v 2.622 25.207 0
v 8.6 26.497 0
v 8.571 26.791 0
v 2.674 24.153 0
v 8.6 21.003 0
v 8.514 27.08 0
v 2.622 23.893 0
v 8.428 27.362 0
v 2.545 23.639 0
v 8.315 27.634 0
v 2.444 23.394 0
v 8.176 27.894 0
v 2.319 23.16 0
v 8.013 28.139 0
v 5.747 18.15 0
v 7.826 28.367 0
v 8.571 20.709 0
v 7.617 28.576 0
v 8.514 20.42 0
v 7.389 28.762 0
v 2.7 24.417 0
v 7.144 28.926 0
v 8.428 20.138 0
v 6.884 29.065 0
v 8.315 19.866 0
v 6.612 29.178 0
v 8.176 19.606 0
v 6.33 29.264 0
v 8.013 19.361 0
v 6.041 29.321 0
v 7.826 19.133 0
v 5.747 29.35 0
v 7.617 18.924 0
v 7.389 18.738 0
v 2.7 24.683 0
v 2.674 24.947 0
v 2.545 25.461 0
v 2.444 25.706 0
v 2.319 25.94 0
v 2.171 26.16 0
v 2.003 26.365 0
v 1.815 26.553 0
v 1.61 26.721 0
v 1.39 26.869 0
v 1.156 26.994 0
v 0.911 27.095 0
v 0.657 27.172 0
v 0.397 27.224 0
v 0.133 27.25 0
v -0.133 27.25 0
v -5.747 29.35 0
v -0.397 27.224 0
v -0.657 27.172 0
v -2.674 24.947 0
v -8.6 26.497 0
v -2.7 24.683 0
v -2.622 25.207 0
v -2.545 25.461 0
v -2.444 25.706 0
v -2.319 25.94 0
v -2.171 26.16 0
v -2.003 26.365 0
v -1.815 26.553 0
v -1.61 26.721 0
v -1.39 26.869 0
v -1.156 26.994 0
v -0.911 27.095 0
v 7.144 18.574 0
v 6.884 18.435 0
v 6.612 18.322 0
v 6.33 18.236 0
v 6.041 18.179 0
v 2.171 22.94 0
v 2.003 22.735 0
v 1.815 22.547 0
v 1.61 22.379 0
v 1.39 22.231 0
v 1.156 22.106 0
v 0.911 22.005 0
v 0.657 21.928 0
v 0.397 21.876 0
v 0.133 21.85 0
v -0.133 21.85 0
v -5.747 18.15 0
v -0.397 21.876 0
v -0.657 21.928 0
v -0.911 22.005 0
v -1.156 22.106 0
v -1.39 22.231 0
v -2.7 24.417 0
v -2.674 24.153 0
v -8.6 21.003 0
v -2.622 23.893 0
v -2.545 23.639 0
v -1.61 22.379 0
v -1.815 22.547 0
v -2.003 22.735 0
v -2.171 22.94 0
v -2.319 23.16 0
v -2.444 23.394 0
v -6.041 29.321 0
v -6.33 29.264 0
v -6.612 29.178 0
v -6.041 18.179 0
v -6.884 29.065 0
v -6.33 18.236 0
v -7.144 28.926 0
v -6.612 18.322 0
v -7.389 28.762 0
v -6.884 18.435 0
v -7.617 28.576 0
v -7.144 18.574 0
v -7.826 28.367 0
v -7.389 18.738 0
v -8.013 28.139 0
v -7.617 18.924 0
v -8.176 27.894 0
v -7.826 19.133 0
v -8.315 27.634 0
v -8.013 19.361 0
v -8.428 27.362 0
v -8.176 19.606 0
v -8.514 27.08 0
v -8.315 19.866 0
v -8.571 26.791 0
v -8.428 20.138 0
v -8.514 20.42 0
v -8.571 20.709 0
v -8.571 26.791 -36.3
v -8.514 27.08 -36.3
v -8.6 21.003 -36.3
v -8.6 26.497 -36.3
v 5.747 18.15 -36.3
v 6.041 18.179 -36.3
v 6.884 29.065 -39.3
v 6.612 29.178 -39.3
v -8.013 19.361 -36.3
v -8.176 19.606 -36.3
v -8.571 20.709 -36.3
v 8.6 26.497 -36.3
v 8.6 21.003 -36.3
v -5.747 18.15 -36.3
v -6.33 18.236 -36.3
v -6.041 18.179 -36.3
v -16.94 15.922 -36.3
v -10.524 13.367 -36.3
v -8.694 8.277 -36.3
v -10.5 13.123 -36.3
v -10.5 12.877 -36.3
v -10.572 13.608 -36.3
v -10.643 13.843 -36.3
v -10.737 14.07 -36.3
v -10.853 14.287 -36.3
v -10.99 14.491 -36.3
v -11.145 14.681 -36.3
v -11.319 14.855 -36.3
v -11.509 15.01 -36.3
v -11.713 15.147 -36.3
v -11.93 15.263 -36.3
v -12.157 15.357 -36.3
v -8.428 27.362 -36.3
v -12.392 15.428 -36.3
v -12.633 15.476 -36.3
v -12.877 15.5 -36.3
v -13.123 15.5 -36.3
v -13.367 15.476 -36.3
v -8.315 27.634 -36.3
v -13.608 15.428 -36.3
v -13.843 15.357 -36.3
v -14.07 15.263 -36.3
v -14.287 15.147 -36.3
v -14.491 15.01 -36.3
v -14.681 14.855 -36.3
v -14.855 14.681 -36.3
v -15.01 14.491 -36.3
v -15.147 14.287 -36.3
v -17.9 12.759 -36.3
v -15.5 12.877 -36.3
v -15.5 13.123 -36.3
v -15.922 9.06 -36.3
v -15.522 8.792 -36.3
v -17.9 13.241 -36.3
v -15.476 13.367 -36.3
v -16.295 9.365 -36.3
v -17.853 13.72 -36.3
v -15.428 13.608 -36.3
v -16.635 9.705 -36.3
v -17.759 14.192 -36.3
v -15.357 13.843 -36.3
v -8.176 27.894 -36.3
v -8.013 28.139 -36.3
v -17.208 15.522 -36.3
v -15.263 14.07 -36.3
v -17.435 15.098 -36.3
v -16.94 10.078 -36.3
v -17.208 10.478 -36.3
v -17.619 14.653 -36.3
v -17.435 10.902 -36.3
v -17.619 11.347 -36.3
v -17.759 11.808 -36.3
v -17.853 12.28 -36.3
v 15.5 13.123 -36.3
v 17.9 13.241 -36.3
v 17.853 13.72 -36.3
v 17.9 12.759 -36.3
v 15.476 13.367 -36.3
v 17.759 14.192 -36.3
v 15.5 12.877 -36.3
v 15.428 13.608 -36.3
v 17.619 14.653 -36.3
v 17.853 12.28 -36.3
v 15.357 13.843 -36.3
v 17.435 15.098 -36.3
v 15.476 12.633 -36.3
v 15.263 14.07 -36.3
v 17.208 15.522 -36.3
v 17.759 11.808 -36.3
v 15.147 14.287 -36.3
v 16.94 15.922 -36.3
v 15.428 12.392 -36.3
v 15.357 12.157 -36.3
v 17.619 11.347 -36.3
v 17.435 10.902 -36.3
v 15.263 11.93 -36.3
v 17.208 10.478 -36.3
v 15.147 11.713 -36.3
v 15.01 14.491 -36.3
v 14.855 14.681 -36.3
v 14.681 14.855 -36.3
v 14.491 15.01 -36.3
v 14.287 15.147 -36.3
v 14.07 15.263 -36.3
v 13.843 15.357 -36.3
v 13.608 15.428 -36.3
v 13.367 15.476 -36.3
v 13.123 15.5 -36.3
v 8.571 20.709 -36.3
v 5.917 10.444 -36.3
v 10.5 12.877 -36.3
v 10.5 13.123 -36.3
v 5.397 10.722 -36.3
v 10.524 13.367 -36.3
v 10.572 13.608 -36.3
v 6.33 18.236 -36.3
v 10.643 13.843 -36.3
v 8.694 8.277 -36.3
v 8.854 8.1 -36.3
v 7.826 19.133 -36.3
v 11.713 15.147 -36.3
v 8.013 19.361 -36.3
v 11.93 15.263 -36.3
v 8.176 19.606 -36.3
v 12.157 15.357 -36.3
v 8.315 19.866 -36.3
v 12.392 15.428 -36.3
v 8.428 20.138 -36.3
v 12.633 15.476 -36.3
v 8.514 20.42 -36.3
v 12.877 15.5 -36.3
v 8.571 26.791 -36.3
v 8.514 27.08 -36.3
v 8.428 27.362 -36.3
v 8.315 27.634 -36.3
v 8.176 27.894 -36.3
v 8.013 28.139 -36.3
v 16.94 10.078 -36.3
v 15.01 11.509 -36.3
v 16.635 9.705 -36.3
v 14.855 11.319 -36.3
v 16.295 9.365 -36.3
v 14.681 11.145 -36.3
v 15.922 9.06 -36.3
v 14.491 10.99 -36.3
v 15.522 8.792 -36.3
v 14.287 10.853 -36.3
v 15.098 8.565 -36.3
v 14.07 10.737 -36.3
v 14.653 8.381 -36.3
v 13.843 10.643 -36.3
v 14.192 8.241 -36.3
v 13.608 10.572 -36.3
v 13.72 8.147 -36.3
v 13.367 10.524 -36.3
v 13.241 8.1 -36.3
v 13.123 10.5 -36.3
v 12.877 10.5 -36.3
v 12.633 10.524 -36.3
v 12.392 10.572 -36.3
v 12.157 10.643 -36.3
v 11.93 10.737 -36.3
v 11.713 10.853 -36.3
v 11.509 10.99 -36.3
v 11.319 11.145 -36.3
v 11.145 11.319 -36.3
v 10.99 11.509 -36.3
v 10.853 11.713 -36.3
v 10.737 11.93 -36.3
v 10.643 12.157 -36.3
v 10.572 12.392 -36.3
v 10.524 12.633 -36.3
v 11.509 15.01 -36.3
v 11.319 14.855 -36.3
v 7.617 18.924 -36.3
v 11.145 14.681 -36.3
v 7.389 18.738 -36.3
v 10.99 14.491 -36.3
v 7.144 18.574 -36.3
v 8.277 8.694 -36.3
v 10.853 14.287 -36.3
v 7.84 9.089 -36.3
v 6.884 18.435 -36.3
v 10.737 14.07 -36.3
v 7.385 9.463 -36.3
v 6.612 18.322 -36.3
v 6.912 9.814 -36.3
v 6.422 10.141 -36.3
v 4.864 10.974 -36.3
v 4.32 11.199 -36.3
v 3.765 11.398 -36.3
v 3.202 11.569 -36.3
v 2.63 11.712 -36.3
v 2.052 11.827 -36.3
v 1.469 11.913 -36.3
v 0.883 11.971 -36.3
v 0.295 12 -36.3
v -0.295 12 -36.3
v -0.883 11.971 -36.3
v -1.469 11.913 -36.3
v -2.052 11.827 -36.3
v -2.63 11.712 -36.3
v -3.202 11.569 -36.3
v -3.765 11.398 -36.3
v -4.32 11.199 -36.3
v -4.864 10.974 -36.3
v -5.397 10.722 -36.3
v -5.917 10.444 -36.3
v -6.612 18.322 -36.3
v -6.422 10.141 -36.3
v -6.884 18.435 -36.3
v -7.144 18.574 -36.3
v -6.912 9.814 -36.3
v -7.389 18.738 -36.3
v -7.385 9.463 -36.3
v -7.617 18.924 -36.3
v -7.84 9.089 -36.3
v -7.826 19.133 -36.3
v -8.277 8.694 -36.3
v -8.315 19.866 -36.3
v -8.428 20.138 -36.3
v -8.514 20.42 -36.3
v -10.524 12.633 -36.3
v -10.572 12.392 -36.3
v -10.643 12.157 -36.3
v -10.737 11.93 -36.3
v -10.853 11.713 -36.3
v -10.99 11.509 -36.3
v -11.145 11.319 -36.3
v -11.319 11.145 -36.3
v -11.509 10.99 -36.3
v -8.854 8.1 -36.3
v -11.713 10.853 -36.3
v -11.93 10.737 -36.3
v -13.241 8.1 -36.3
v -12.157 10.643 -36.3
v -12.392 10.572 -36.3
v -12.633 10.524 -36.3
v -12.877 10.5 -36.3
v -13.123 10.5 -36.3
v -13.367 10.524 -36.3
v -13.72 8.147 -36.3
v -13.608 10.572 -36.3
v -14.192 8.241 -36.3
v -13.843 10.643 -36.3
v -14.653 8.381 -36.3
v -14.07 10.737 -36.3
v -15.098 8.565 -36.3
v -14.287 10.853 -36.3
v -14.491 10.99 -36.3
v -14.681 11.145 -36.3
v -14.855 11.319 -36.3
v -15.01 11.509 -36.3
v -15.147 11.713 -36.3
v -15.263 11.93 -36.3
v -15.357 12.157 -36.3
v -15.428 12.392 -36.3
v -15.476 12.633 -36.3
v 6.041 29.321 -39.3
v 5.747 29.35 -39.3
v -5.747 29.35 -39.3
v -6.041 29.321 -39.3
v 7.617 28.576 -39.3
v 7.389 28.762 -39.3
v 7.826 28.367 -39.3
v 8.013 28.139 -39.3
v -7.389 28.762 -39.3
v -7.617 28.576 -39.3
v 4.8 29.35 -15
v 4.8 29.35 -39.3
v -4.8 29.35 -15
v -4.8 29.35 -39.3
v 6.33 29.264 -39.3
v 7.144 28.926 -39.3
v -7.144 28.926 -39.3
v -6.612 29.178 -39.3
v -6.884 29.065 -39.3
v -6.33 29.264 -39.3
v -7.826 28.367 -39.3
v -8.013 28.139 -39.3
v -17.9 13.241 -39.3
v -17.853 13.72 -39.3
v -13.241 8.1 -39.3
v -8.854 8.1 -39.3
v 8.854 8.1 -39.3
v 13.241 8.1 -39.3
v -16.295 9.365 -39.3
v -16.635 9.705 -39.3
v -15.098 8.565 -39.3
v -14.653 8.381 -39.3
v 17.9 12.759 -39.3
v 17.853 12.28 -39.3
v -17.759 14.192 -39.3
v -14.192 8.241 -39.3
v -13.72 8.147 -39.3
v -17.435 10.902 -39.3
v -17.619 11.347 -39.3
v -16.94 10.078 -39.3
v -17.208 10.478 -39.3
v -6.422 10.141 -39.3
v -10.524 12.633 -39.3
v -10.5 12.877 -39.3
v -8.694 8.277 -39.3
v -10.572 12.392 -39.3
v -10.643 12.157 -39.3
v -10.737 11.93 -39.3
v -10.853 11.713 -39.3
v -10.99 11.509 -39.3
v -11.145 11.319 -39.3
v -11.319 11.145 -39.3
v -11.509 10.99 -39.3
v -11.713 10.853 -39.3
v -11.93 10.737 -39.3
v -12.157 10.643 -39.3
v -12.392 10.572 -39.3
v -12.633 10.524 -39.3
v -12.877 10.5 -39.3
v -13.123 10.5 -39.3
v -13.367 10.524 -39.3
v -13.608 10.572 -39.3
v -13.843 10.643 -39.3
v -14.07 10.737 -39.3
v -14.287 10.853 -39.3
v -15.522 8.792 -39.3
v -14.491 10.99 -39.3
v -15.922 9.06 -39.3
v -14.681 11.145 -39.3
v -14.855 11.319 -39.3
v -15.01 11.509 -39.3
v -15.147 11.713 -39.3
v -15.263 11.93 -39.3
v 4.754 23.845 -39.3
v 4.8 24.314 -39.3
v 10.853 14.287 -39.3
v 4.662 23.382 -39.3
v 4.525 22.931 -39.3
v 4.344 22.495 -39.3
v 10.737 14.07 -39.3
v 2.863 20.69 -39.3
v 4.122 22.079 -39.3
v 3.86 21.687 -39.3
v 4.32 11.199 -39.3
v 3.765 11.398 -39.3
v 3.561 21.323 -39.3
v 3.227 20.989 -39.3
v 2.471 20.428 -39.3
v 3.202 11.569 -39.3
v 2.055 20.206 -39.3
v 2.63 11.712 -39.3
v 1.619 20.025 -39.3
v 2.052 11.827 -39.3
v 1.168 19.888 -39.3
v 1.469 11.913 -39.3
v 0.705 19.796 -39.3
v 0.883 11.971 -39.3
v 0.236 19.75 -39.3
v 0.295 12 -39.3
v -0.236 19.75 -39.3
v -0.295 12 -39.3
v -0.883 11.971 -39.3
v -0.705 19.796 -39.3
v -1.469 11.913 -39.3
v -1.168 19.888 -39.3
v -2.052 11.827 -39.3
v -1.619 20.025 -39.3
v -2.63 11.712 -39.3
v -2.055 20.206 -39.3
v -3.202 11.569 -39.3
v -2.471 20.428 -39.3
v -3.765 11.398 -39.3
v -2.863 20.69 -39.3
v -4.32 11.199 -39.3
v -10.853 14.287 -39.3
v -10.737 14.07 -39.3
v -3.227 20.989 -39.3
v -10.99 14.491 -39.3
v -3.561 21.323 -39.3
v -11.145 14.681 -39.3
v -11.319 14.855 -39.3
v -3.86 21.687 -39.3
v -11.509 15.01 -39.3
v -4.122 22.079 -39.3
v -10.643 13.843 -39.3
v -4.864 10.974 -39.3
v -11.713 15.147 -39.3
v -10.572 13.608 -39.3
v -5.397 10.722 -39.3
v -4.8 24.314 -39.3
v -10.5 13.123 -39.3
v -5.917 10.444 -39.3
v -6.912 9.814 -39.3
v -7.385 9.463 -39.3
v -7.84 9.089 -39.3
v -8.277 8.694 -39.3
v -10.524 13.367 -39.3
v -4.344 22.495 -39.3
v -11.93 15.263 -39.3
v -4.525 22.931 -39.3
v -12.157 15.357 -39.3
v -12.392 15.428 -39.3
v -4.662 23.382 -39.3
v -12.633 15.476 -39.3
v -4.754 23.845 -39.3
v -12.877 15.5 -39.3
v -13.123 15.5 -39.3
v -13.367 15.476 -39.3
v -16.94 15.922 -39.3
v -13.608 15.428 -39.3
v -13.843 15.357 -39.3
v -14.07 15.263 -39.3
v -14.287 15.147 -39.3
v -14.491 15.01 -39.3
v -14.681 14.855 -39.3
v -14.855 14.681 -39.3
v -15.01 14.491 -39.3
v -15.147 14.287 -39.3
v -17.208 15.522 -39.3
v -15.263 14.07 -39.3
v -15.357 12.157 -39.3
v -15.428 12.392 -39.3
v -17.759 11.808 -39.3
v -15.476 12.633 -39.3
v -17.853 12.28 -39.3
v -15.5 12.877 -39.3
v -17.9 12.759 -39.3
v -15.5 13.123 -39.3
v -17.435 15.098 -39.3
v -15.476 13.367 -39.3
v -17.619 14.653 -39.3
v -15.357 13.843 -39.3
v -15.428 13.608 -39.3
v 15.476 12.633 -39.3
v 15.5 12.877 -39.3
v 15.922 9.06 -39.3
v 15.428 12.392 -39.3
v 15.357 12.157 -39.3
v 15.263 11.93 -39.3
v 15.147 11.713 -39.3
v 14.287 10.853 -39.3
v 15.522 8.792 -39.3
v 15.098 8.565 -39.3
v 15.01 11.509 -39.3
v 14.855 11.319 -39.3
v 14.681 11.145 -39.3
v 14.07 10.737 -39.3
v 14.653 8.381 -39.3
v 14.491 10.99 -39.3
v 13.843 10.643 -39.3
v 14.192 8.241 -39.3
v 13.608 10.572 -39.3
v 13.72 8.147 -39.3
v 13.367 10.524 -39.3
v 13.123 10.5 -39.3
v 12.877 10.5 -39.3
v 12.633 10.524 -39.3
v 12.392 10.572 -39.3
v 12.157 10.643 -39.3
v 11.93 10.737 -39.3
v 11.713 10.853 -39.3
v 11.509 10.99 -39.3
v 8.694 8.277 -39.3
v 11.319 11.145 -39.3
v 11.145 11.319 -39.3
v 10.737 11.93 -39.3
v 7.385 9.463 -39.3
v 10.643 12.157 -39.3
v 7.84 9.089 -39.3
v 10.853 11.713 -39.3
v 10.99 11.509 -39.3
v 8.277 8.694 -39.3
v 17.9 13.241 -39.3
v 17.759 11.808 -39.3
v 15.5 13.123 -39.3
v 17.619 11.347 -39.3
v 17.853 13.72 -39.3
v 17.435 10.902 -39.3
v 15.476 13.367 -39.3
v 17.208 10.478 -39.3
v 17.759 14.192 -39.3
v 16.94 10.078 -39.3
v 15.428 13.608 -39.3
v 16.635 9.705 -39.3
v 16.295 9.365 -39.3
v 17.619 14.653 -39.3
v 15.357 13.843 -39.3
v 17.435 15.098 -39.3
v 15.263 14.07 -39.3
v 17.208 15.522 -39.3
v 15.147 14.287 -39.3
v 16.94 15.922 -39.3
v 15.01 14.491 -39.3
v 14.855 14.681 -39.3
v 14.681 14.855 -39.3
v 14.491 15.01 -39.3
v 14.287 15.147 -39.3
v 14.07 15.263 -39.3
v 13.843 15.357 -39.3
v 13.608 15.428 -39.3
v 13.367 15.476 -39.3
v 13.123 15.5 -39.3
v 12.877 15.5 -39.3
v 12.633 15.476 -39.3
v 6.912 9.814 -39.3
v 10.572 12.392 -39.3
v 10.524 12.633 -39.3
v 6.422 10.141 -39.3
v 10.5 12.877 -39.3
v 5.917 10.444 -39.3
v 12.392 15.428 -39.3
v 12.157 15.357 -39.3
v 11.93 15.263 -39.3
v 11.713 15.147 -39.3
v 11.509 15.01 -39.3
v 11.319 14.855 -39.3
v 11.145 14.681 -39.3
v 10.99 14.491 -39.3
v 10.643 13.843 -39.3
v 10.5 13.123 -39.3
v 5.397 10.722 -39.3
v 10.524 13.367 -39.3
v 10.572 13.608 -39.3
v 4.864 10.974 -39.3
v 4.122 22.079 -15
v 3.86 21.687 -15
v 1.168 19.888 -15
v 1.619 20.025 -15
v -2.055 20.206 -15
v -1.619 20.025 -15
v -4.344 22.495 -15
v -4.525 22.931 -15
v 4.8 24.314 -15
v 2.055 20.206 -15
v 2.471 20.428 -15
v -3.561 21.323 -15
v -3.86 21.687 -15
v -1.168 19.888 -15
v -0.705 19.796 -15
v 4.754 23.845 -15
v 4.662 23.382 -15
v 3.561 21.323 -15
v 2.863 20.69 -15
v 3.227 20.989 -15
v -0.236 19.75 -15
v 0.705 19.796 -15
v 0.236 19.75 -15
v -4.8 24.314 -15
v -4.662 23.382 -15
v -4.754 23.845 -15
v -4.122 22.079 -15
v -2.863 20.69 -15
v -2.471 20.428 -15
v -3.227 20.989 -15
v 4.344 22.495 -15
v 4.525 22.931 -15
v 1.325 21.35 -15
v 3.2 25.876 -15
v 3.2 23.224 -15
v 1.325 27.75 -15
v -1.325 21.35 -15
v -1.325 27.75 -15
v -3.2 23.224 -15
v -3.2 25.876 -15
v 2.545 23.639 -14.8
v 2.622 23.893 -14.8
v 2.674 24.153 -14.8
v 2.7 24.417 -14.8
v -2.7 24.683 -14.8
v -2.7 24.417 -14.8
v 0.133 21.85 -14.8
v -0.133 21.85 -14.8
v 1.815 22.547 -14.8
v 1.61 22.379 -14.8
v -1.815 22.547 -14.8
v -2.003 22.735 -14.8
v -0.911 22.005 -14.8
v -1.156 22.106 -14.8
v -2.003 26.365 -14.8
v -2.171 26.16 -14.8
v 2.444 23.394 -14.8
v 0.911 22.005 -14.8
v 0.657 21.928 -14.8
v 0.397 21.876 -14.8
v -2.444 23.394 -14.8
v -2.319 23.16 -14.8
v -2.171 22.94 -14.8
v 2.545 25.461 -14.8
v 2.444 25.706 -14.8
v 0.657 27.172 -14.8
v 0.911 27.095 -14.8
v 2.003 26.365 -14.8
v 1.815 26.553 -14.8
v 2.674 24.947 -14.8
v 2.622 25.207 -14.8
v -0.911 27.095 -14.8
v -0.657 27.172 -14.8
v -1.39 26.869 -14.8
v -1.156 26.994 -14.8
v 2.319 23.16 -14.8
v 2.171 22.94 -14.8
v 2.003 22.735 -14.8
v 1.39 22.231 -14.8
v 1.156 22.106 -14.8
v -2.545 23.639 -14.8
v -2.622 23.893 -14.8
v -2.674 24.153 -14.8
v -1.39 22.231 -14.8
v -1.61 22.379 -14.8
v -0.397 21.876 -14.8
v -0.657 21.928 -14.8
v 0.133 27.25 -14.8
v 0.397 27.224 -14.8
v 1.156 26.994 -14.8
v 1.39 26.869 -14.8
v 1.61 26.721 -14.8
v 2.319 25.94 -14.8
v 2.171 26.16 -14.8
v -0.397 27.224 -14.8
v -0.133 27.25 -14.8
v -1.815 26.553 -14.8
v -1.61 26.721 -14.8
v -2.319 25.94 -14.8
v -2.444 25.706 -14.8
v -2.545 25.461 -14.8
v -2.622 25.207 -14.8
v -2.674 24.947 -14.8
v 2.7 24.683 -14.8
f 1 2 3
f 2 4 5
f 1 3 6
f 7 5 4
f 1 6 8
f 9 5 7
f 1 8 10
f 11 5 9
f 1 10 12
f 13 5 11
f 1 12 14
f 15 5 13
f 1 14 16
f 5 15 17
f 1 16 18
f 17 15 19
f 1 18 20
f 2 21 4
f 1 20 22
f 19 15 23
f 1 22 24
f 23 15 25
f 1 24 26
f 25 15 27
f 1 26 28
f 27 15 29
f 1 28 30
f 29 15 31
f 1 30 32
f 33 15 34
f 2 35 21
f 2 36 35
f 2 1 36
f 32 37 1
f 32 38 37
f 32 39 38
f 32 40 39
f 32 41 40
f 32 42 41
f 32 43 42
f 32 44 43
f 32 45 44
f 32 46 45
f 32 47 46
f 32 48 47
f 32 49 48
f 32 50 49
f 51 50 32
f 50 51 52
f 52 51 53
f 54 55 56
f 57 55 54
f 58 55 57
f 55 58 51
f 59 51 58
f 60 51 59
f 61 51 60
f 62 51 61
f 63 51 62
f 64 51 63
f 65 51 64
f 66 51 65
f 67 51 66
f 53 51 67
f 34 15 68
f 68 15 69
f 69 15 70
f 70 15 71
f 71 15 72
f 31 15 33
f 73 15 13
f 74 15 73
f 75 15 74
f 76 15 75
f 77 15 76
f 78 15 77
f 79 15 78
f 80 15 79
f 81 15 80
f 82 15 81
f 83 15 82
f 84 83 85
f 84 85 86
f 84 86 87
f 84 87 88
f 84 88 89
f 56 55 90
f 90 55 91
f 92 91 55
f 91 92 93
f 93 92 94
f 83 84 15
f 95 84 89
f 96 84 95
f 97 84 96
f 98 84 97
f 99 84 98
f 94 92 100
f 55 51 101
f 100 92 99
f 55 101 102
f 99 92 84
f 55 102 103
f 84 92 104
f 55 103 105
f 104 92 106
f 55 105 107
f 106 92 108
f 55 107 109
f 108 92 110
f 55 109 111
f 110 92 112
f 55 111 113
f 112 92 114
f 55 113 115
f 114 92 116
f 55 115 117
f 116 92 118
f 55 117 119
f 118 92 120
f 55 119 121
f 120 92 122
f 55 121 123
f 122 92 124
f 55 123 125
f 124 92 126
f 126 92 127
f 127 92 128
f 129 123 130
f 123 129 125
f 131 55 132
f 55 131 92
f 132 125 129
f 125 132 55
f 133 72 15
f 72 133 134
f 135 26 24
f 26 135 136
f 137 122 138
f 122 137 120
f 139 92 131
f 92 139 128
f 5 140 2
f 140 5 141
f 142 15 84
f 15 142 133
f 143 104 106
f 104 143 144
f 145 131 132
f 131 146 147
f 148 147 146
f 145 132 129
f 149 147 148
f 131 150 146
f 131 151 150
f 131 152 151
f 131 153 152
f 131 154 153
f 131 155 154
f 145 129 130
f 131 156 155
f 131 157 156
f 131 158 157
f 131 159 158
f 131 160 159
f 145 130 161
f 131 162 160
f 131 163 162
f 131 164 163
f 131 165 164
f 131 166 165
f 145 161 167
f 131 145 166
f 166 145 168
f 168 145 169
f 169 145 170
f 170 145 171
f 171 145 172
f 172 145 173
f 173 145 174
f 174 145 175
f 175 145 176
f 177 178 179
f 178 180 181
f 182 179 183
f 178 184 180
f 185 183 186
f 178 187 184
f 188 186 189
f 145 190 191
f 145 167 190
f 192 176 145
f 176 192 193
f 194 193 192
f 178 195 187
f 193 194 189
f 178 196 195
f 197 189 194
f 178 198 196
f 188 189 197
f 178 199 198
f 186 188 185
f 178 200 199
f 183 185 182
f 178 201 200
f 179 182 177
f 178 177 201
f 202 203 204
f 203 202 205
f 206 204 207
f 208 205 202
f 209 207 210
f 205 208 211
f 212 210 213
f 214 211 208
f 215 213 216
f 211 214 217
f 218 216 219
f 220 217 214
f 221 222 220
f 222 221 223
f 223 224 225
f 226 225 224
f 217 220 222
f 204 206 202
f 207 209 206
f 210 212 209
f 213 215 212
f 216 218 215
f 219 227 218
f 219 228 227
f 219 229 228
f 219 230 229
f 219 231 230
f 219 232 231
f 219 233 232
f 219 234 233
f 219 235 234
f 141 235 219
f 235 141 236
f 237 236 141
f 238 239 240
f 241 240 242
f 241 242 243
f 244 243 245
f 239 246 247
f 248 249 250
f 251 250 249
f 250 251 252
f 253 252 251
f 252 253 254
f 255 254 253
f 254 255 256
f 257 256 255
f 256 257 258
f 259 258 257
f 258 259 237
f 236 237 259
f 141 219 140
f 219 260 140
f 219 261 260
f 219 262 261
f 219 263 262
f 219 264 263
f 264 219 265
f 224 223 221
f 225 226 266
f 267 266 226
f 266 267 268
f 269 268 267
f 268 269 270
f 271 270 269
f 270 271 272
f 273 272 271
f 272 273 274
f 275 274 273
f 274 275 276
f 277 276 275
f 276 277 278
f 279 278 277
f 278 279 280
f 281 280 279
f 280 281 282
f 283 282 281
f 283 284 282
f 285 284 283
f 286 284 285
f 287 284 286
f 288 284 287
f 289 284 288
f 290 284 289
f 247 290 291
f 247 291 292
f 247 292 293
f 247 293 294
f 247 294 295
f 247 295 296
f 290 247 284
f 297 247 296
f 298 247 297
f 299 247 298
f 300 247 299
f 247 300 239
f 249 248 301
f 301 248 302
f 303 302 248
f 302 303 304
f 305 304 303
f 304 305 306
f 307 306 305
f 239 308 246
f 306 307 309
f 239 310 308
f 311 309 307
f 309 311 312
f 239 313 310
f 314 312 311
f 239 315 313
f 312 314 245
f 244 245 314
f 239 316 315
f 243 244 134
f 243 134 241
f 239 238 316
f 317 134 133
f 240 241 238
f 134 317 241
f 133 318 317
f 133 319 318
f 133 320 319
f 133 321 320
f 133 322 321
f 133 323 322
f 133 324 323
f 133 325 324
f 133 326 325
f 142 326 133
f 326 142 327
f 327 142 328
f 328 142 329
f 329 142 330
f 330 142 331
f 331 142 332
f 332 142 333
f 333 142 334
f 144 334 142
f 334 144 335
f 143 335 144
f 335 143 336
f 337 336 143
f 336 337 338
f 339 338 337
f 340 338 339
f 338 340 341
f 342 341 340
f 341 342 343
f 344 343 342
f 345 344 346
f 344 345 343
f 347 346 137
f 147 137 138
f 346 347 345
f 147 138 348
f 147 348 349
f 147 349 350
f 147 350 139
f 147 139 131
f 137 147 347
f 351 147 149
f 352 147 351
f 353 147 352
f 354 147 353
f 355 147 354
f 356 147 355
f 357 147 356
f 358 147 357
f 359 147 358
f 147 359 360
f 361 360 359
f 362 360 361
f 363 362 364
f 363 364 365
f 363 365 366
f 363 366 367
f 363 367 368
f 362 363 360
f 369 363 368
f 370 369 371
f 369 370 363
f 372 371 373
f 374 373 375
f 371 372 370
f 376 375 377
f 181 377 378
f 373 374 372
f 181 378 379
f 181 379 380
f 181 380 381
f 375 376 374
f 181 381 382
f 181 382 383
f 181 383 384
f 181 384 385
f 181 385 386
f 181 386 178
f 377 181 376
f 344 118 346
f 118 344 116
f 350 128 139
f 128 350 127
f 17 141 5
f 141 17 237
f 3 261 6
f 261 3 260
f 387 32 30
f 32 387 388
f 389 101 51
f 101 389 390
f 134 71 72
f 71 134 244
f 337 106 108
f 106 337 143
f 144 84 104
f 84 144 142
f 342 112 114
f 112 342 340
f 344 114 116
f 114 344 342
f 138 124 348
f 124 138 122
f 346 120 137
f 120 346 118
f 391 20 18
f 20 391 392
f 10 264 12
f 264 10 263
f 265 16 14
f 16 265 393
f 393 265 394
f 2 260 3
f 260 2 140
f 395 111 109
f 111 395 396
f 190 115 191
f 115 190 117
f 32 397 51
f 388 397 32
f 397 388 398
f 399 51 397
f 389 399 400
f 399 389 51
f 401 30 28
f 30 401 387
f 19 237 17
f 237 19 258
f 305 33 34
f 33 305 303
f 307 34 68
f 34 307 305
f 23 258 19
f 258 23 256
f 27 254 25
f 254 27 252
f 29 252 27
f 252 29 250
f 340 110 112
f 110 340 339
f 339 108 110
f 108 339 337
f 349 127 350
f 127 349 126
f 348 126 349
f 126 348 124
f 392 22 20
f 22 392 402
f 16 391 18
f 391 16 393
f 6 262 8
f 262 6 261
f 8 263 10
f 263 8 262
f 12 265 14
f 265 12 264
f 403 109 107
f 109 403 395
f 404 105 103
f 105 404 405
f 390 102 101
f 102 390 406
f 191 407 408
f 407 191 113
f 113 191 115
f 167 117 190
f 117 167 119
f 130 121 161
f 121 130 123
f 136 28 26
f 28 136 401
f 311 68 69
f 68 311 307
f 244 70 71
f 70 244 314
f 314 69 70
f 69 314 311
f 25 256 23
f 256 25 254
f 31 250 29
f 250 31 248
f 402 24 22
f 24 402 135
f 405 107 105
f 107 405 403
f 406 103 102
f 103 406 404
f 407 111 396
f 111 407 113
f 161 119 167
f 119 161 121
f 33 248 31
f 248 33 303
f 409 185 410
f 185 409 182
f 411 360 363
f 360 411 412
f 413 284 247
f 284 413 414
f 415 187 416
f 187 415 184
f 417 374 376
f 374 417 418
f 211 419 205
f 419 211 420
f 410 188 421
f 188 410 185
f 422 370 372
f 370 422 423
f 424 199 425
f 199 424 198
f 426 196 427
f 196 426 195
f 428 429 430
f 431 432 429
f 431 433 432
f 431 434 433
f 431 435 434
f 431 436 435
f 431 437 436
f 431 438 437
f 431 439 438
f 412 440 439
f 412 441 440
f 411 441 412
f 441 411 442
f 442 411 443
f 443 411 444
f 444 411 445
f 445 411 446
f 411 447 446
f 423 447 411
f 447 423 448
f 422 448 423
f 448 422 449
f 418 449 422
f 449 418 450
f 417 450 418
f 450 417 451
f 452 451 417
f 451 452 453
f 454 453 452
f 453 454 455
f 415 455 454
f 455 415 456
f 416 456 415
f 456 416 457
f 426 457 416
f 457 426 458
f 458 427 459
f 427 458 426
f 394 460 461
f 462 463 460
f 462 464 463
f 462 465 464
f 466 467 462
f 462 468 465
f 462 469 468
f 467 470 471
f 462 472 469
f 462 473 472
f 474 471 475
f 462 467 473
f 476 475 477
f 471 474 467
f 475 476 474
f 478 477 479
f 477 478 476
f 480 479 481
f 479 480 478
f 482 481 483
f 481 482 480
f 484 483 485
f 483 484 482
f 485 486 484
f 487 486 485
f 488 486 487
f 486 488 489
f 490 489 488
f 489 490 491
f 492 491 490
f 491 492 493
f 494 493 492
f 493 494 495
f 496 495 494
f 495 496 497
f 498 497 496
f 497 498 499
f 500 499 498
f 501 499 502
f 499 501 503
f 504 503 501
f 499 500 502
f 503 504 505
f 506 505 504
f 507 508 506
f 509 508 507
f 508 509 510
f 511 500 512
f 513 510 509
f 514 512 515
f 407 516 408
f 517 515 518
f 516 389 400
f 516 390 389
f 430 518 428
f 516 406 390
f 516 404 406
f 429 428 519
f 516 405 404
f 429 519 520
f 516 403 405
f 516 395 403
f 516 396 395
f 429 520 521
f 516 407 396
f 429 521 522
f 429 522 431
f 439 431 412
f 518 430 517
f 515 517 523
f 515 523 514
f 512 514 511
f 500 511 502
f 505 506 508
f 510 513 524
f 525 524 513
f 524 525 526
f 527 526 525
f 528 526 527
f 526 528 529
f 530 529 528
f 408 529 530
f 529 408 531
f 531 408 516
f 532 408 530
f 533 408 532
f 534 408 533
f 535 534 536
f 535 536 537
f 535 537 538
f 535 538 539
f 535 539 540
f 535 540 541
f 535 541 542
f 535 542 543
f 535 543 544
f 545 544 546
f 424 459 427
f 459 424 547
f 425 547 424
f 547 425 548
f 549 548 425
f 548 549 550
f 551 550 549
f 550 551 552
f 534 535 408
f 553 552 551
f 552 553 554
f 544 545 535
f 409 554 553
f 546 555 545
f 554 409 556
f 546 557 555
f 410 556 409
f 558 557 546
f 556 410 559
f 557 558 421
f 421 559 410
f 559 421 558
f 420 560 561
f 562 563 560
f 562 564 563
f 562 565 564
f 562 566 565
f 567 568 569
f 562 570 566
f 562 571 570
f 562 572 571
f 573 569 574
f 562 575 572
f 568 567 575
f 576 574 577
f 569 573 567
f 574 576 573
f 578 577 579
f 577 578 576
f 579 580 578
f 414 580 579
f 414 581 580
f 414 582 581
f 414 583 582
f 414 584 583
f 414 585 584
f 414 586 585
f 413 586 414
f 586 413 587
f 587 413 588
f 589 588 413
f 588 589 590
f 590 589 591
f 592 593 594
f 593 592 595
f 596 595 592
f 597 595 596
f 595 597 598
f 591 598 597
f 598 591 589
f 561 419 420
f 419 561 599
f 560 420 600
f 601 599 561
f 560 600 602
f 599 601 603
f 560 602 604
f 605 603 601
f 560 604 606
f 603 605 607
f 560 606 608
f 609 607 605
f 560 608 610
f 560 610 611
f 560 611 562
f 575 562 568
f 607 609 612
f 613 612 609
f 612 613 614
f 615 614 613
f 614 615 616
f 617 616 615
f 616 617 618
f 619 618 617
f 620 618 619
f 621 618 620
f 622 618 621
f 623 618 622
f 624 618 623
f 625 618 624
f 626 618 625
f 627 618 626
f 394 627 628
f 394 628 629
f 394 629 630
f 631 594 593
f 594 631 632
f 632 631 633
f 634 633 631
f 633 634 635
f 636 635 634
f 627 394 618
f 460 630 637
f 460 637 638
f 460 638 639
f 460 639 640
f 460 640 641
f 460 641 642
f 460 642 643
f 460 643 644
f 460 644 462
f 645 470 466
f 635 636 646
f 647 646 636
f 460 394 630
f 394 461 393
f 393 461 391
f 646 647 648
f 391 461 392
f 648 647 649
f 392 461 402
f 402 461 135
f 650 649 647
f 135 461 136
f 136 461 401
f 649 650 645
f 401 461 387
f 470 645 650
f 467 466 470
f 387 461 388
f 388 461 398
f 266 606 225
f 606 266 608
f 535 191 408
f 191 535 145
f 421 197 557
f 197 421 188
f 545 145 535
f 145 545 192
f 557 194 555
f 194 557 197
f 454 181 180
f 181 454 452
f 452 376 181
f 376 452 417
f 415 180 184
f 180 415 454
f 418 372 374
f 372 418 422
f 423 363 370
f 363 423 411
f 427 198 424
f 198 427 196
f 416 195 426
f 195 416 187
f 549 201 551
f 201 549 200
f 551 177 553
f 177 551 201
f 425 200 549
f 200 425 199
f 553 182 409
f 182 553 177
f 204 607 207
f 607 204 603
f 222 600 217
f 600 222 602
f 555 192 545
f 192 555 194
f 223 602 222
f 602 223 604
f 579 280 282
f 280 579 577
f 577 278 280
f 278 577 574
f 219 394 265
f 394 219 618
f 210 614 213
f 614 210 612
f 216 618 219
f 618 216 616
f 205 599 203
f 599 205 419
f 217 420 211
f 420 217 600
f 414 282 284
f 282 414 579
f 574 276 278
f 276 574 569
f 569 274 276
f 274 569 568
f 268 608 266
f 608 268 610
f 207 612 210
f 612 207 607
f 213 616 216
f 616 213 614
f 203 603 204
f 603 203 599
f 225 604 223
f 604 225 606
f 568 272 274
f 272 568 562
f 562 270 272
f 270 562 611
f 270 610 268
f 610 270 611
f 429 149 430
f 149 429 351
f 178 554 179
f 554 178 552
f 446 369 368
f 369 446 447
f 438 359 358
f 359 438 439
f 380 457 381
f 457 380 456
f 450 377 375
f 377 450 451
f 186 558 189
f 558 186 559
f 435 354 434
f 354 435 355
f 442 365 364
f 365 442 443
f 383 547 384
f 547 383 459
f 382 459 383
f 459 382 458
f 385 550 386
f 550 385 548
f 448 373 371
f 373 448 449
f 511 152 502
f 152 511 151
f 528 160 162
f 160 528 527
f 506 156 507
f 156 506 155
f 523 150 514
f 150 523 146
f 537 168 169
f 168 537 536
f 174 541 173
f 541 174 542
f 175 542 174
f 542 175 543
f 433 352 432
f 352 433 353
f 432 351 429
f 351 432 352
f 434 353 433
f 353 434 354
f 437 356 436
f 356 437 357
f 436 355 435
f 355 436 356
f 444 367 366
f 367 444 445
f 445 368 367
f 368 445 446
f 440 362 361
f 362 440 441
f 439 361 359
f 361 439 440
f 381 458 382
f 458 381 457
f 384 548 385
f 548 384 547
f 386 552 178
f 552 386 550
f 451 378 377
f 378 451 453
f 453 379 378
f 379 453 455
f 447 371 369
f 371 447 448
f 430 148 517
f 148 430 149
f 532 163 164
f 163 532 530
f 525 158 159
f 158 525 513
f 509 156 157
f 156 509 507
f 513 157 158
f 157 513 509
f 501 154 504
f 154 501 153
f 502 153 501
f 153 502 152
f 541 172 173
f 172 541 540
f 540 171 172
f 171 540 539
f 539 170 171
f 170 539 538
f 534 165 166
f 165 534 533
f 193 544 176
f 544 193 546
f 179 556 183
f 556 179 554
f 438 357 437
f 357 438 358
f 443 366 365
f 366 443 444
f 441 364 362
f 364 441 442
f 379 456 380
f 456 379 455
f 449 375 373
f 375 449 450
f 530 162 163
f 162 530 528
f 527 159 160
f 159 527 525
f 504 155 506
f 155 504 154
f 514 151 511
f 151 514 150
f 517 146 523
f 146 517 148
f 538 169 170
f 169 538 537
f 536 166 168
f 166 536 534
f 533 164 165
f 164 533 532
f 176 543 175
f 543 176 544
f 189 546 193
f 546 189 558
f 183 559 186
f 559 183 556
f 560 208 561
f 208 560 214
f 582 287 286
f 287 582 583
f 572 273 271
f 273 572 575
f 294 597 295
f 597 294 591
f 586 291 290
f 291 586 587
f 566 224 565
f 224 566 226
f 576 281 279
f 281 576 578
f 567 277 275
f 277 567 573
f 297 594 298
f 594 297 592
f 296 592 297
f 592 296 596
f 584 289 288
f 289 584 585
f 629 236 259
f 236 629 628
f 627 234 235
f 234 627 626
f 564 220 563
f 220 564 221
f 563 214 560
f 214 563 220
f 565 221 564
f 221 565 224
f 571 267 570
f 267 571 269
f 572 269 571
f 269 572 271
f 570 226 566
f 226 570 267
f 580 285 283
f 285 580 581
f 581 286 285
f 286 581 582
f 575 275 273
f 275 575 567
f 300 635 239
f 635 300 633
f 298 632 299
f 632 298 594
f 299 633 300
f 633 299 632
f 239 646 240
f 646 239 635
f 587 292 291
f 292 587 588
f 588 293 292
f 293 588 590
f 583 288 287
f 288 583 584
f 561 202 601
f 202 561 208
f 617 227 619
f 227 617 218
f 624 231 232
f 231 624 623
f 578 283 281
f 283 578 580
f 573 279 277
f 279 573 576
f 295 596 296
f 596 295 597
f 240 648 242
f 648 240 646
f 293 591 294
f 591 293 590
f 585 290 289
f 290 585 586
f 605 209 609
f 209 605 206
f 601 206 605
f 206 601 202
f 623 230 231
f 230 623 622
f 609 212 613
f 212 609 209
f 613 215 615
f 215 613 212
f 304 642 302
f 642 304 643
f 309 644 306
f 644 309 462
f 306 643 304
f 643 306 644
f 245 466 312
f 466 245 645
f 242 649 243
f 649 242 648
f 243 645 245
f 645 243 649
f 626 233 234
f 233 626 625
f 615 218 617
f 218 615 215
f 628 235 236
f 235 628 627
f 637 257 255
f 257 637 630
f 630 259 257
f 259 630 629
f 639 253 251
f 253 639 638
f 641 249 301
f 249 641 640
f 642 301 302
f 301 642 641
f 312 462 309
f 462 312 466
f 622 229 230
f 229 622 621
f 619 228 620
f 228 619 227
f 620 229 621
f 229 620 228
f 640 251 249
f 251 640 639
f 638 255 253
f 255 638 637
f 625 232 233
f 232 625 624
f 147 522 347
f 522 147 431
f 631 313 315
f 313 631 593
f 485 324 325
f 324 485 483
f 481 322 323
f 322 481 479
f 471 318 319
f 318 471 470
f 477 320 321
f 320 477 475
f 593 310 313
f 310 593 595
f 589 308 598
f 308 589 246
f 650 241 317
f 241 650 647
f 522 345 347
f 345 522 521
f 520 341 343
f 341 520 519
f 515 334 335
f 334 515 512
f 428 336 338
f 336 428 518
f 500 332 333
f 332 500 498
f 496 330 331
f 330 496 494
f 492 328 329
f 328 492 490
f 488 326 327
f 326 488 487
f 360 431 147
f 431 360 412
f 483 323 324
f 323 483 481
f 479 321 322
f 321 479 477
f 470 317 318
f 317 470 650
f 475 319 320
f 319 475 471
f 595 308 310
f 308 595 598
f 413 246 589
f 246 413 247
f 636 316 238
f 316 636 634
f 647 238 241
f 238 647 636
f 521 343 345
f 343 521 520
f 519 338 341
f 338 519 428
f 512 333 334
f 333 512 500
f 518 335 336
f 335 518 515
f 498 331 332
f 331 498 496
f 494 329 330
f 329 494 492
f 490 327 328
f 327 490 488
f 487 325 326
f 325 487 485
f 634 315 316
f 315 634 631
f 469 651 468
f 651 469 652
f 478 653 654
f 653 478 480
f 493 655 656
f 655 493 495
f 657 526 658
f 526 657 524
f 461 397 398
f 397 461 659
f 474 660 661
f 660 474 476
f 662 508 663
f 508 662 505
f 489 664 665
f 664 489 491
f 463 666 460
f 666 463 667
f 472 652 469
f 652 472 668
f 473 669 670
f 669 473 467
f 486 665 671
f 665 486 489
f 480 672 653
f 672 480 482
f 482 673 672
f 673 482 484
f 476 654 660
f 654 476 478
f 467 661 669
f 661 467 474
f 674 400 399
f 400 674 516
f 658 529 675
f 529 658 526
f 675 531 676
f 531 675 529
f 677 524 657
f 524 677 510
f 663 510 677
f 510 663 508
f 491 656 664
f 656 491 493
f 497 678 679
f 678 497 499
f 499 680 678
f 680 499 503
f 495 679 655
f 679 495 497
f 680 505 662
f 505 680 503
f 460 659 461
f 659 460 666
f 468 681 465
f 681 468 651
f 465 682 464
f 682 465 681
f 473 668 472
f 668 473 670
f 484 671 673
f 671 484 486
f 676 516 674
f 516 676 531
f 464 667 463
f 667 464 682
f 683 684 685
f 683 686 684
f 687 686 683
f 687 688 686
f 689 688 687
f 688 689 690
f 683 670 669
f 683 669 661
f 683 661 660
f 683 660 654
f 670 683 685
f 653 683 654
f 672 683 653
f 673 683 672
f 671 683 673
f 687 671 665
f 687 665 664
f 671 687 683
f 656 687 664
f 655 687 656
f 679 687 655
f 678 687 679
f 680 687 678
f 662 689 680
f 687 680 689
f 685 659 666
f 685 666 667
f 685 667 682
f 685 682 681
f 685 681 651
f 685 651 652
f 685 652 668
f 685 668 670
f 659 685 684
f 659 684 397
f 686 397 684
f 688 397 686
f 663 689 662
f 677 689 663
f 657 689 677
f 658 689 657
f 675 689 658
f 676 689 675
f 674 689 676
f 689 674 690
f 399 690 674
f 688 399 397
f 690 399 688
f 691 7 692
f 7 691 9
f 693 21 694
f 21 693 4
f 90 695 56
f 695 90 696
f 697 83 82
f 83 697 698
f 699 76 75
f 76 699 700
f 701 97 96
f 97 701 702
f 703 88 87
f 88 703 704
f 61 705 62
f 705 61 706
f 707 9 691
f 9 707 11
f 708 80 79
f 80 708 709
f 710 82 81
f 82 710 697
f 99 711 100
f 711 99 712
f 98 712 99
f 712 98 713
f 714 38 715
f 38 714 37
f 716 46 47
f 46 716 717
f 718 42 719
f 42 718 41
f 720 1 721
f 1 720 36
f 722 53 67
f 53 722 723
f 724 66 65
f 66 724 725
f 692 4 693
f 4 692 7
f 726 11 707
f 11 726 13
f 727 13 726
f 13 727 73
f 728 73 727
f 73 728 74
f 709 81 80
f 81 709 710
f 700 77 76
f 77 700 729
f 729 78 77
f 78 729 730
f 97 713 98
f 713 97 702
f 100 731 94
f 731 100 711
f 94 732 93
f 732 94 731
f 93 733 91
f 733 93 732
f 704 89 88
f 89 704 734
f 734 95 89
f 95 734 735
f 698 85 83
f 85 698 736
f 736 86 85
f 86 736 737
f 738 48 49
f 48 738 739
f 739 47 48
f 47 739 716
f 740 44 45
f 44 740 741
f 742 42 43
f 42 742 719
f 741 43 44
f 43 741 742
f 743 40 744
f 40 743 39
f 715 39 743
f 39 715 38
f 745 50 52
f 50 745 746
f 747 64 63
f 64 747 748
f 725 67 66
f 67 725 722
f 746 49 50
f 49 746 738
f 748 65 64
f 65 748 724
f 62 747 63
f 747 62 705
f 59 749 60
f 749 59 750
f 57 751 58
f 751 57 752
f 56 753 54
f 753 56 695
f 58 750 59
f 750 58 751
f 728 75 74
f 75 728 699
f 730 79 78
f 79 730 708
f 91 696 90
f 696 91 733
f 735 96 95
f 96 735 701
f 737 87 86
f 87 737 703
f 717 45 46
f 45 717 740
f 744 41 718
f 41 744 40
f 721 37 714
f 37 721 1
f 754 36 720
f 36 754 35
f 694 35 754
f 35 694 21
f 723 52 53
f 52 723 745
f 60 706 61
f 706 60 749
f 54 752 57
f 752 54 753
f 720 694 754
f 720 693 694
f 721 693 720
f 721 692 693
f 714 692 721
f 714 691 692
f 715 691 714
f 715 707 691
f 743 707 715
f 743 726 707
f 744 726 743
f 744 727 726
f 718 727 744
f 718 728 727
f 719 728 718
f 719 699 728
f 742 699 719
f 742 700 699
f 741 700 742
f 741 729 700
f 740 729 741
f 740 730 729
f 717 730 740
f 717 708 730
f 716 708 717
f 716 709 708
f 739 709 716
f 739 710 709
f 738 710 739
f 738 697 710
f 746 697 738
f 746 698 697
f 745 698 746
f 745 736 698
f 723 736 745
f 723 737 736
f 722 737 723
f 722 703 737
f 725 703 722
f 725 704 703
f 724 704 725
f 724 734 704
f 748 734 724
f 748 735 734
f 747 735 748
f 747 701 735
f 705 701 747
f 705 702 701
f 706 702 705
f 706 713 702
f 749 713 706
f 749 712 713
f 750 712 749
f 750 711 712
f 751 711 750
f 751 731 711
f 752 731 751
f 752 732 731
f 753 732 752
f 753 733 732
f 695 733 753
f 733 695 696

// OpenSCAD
// file: ../lib/util.scad
resolution = 64;

pi = 3.141592;

left = -1;
right = 1;
top = 1;
bottom = -1;
rear = 1;
front = -1;

function accurate_diam(diam,sides) = 1 / cos(180/sides) / 2 * diam;

module hole(diam,len,sides=8) {
  rotate([0,0,180/sides]) {
    cylinder(r=accurate_diam(diam,sides),h=len,center=true,$fn=sides);
  }
}

module accurate_circle(diam,sides=8) {
  rotate([0,0,180/sides]) {
    circle(r=accurate_diam(diam,sides),$fn=sides);
  }
}

module debug_axes() {
  color("red") translate([50,0,0]) cube([100,.2,.2],center=true);
  color("green") translate([0,50,0]) cube([.2,100,.2],center=true);
  color("blue") translate([0,0,50]) cube([.2,.2,100],center=true);
}

module ring(id,thickness,height,fn=16) {
  od = id + thickness;
  linear_extrude(height=height,center=true) {
    difference() {
      accurate_circle(od,fn);
      accurate_circle(id,fn);
    }
  }
}

module rounded_square(width,depth,diam,fn=resolution) {
  pos_x = width/2-diam/2;
  pos_y = depth/2-diam/2;

  hull() {
    for(x=[left,right]) {
      for(y=[front,rear]) {
        translate([x*pos_x,y*pos_y,0]) {
          accurate_circle(diam,fn);
        }
      }
    }
  }
}

module rounded_cube(width,depth,height,diam,fn=resolution) {
  linear_extrude(height=height,center=true,convexity=3) {
    rounded_square(width,depth,diam,fn);
  }
}

module round_corner_filler(diam,length) {
  linear_extrude(height=length,center=true,convexity=3) {
    round_corner_filler_profile(diam);
  }
}

module round_corner_filler_profile(diam,res=resolution) {
  difference() {
    translate([diam/4,diam/4,0]) {
      square([diam/2,diam/2],center=true);
    }
    translate([diam/2,diam/2,0]) {
      accurate_circle(diam,res);
    }
  }
}

module space_along_length(length,min_hole_spacing=4*inch,from_end=1*inch) {
  avail_length = length - (from_end*2);
  num_spaces   = floor(avail_length / min_hole_spacing);
  extra_space  = (avail_length - (num_spaces*min_hole_spacing)) / num_spaces;
  spacing      = min_hole_spacing + extra_space;

  // echo(length, num_spaces, spacing);

  translate([0,-length/2+from_end,0]) {
    for(y=[0:num_spaces]) {
      translate([0,y*spacing,0]) {
        children();
      }
    }
  }
}

module letter_spike(thin_width,thick_width,thickness) {
  hull() {
    cylinder(r=thin_width,h=thickness*2,center=true,$fn=16);
    cylinder(r=thick_width,h=0.01,center=true,$fn=16);
  }
}

module letter_L(width=10,height=20,thickness=0.5,thick_width=2,thin_width=0.3) {
  lines = [
    [
      [-width/2,height/2,0],
      [-width/2,-height/2,0],
    ],
    [
      [-width/2,-height/2,0],
      [width/2,-height/2,0],
    ],
  ];

  for(pair=lines) {
    hull() {
      for(vect=pair) {
        translate(vect) {
          letter_spike(thin_width,thick_width,thickness);
        }
      }
    }
  }
}

module letter_R(width=10,height=20,thickness=0.5,thick_width=2,thin_width=0.3) {
  lines = [
    [
      [-width/2,height/2,0],
      [-width/2,-height/2,0],
    ],
    [
      [-width/2,height/2,0],
      [width/2,height/3,0],
    ],
    [
      [width/2,height/3,0],
      [-width/4,0,0],
    ],
    [
      [-width/2,0,0],
      [-width/4,0,0],
    ],
    [
      [-width/4,0,0],
      [width/2,-height/2,0],
    ],
  ];

  for(pair=lines) {
    hull() {
      for(vect=pair) {
        translate(vect) {
          letter_spike(thin_width,thick_width,thickness);
        }
      }
    }
  }
}

module zip_tie_cavity(inner_diam_input,zip_tie_thickness,zip_tie_width,fn=resolution) {
  inner_diam = inner_diam_input -0.05;
  overall_width = inner_diam+zip_tie_thickness*2;

  module profile() {
    for(x=[left,right]) {
      translate([x*(inner_diam/2+zip_tie_thickness/2),overall_width,0]) {
        square([zip_tie_thickness,overall_width*2],center=true);
      }
    }

    intersection() {
      translate([0,-overall_width,0]) {
        square([overall_width*2,overall_width*2],center=true);
      }
      difference() {
        accurate_circle(inner_diam+zip_tie_thickness*2,fn);
        accurate_circle(inner_diam,fn);
      }
    }
  }

  linear_extrude(height=zip_tie_width,convexity=3,center=true) {
    profile();
  }
}

module printed_extrusion_carriage_profile(body_width,body_height) {
  spring_thickness = extrude_width*4;
  spring_gap_width = 1;
  preload = -0.2; // negative makes more slack both for print and UHMWPE tape
  wall_thickness = extrude_width*4;

  cavity_width = body_width - wall_thickness*4;
  cavity_height = body_height - wall_thickness*4;

  module spring_profile() {
    contact_width = 8;

    translate([0,-preload+spring_thickness/2]) {
      translate([left*(y_rail_extrusion_width/2-contact_width/2),0,0]) {
        rounded_square(contact_width,spring_thickness,spring_thickness);
      }
      hull() {
        translate([left*(y_rail_extrusion_width/2-contact_width+spring_thickness/2),0,0]) {
          accurate_circle(spring_thickness,resolution);
        }
        translate([right*(y_rail_extrusion_width/2-spring_thickness),spring_gap_width/2,0]) {
          accurate_circle(spring_thickness,resolution);
        }
      }
      translate([right*(y_rail_extrusion_width/2-spring_thickness),2-spring_thickness/2+spring_gap_width/2,0]) {
        rounded_square(spring_thickness,4,spring_thickness);
      }
    }
  }

  for(z=[top,bottom]) {
    mirror([0,1-z,0]) {
      translate([0,y_rail_extrusion_height/2]) {
        spring_profile();
      }

      for(x=[left,right]) {
        mirror([1-x,0,0]) {
          translate([y_rail_extrusion_width/2,y_rail_extrusion_height/4,0]) {
            rotate([0,0,-90]) {
              spring_profile();
            }
          }
        }
      }
    }
  }

  difference() {
    gap_width = cavity_height - y_rail_extrusion_height;
    rounded_square(body_width,body_height,wall_thickness*8);
    rounded_square(cavity_width,cavity_height,gap_width);
  }
}

/*
translate([-10,0,0]) {
  letter_L();
}

translate([10,0,0]) {
  letter_R();
}
*/
// file: ../config.scad
include <./lib/util.scad>;
include <./lib/vitamins.scad>;

tolerance = 0.2;
extrude_width = 0.4;
wall_thickness = extrude_width*3;

extrusion_mount_screw_diam = m5_diam;
extrusion_mount_screw_head_diam = m5_nut_diam;

leadscrew_diam = 5;
leadscrew_hole_diam = 6.5;
leadscrew_nut_shaft_diam = 8.5;
leadscrew_nut_shaft_length = 6.5;
leadscrew_nut_hole_dist = 6.611;
leadscrew_nut_flange_diam = 20;
leadscrew_nut_flange_thickness = 3.25;
leadscrew_nut_mounting_hole_dist = 6.35;
leadscrew_nut_mounting_hole_diam = 2.8; // from walter's -- threading m3 into plastic?

//leadscrew_pos_y = -leadscrew_nut_flange_diam/2-1;
//leadscrew_pos_y = -11; // we could move it closer with a printed bracket, but it would interfere with the X idler without redefining the X idler Y pos
leadscrew_pos_y = -13; // what walter is using

m3_socket_head_diam = 5.6;
m3_socket_head_height = 3;

rounded_diam = 4;

z_nut_base_height = mgn12c_length/2 - mgn12c_hole_spacing_length/2 + m3_socket_head_diam/2 + extrude_width*2;

gt2_toothed_idler_id_hole = gt2_toothed_idler_id-0.15; // thread the idler pulley shaft into plastic

leadscrew_nut_mounting_hole_depth = z_nut_base_height - leadscrew_nut_flange_thickness - extrude_width*2;

leadscrew_nut_shoulder_below_carriage_holes = 4.5;

idler_bevel_height = 1;
idler_shoulder_above_rail = 9.2/2+4.8;

depth = abs(leadscrew_pos_y)+7; // copying from walter
z_nut_mount_height = idler_shoulder_above_rail - idler_bevel_height + mgn12c_hole_spacing_length/2 + mgn12c_length/2;

echo("z_nut_mount_height: ", z_nut_mount_height);
z_nut_body_pos_z = mgn12c_hole_spacing_length/2+idler_shoulder_above_rail-idler_bevel_height-z_nut_mount_height/2;

// x_idler_on_z_pos_x = -11; // walter
x_idler_on_z_pos_x = left*(leadscrew_diam/2+gt2_toothed_idler_flange_od/2+1);
x_idler_on_z_pos_y = leadscrew_pos_y-3;
x_idler_on_z_pos_z = z_nut_body_pos_z + z_nut_mount_height/2 + idler_bevel_height;

meat_on_far_side_of_idler = gt2_toothed_idler_id_hole/2 + wall_thickness*3;
idler_shaft_body_width = meat_on_far_side_of_idler + abs(x_idler_on_z_pos_x) - leadscrew_hole_diam/2 - 1.75; // fatter to be same as walter's
z_nut_mount_width = meat_on_far_side_of_idler + abs(x_idler_on_z_pos_x) + mgn12c_hole_spacing_width/2 + m3_socket_head_diam/2 + extrude_width*2;
z_nut_body_pos_x = x_idler_on_z_pos_x-meat_on_far_side_of_idler+z_nut_mount_width/2;

mgn9_rail_width_allowance = mgn9_rail_width+tolerance;
mgn9_rail_height_allowance = mgn9_rail_height+tolerance;
// file: ../z-motor-mount.scad
include <./config.scad>;
include <./lib/util.scad>;

gap_beneath_z_motor = 1;
motor_opening_side = nema14_side + 1;
motor_opening_height = nema14_len + gap_beneath_z_motor;
plate_thickness = 3;
motor_screw_hole_diam = nema14_screw_diam+2; // extra slop to adjust Z motor
motor_screw_mount_width = motor_screw_hole_diam+2*(extrude_width*6);
mount_width = nema14_hole_spacing+motor_screw_mount_width;
dist_to_extrusion = abs(leadscrew_pos_y) + mgn12c_surface_above_surface;
extrusion_width = 20;

module motor_negative() {
  translate([0,0,motor_opening_height/2]) {
    // cube([motor_opening_side,motor_opening_side,motor_opening_height],center=true);
  }

  translate([0,0,motor_opening_height]) {
    for(x=[left,right]) {
      for(y=[front,rear]) {
        translate([x*nema14_hole_spacing/2,y*nema14_hole_spacing/2,0]) {
          hole(motor_screw_hole_diam,40,resolution);
        }
      }
    } 

    hole(nema14_shoulder_diam+2,40,resolution*2);
  }
}

module z_motor_mount_rear() {
  extrusion_side_thickness = dist_to_extrusion - motor_opening_side/2;
  extrusion_mount_thickness = extrude_width*8;

  module body() {
    // between motor and extrusion
    translate([extrusion_mount_thickness/2,motor_opening_side/2+extrusion_side_thickness/2,motor_opening_height/2]) {
      rounded_cube(extrusion_width+extrusion_mount_thickness,extrusion_side_thickness,motor_opening_height,extrusion_mount_thickness);
    }

    // mount to screw to extrusion
    extrusion_mount_height = motor_opening_height + plate_thickness;
    overall_depth = extrusion_side_thickness+extrusion_width;
    translate([extrusion_width/2+extrusion_mount_thickness/2,motor_opening_side/2+overall_depth/2,extrusion_mount_height/2]) {
      rounded_cube(extrusion_mount_thickness,overall_depth,extrusion_mount_height,extrusion_mount_thickness);
    }

    // motor mount plate
    translate([0,0,motor_opening_height+plate_thickness/2]) {
      hull() {
        translate([extrusion_mount_thickness/2,motor_opening_side/2+extrusion_side_thickness/2,0]) {
          rounded_cube(extrusion_width+extrusion_mount_thickness,extrusion_side_thickness,plate_thickness,extrusion_mount_thickness);
        }
        for(x=[left,right]) {
          translate([x*nema14_hole_spacing/2,nema14_hole_spacing/2,0]) {
            hole(motor_screw_mount_width,plate_thickness,resolution);
          }
        }
      }
    }
  }

  module holes() {
    motor_negative();

    translate([0,dist_to_extrusion+extrusion_width/2,0]) {
      for(z=[top,bottom]) {
        translate([0,0,motor_opening_height/2+z*motor_opening_height/4]) {
          rotate([0,90,0]) {
            hole(5+tolerance,60,resolution);
          }
        }
      }
    }
  }

  color("salmon") {
    difference() {
      body();
      holes();
    }
  }

  translate([0,0,gap_beneath_z_motor+nema14_len]) {
    % color("dimgrey") motor_nema14();
  }
}

module z_motor_mount_front() {
  wall_thickness = extrude_width*2;
  rounded_diam = 6;
  extrusion_mount_screw_hole_diam = extrusion_mount_screw_diam + tolerance*2;
  extrusion_mount_head_hole_diam = extrusion_mount_screw_head_diam + tolerance*3;
  extrusion_mount_depth = extrusion_mount_head_hole_diam+wall_thickness*2;
  extrusion_mount_width = extrusion_mount_head_hole_diam+rounded_diam+wall_thickness*2;

  extrusion_anchor_shoulder_pos_z = 15;

  module body() {
    // screw meat
    translate([0,0,0]) {
      translate([0,front*(motor_opening_side/2+extrusion_mount_depth/2),motor_opening_height/2]) {
        rounded_cube(extrusion_mount_width,extrusion_mount_depth,motor_opening_height,rounded_diam,resolution);
      }
    }

    // motor mount plate
    translate([0,0,motor_opening_height+plate_thickness/2]) {
      hull() {
        translate([0,front*(motor_opening_side/2+extrusion_mount_depth/2),0]) {
          rounded_cube(extrusion_mount_width,extrusion_mount_depth,plate_thickness,rounded_diam,resolution);
        }
        for(x=[left,right]) {
          translate([x*nema14_hole_spacing/2,front*nema14_hole_spacing/2,0]) {
            hole(motor_screw_mount_width,plate_thickness,resolution);
          }
        }
      }
    }
  }

  module holes() {
    motor_negative();

    translate([0,front*(motor_opening_side/2+extrusion_mount_depth-extrusion_mount_head_hole_diam/2),extrusion_anchor_shoulder_pos_z + 40]) {
      hole(extrusion_mount_head_hole_diam,80,resolution);
      hole(extrusion_mount_screw_hole_diam,2*80,resolution);

      translate([0,front*(extrusion_mount_head_hole_diam/2),0]) {
        cube([extrusion_mount_head_hole_diam,extrusion_mount_head_hole_diam,80],center=true);
      }
    }
  }

  module bridges() {
    translate([0,front*(motor_opening_side/2+extrusion_mount_depth-extrusion_mount_head_hole_diam/2),extrusion_anchor_shoulder_pos_z-0.1]) {
      hole(extrusion_mount_screw_hole_diam+1,0.2,8);
    }
  }

  color("salmon") {
    difference() {
      body();
      holes();
    }

    bridges();
  }

  translate([0,0,gap_beneath_z_motor+nema14_len]) {
    % color("dimgrey") motor_nema14();
  }
}

module z_motor_mount_rear_to_print() {
  rotate([0,180,0]) {
    z_motor_mount_rear();
  }
}

module z_motor_mount_front_to_print() {
  rotate([180,0,0]) {
    z_motor_mount_front();
  }
}

z_motor_mount_rear();

z_motor_mount_front();
// main file
use <../z-motor-mount.scad>;

z_motor_mount_front_to_print();
